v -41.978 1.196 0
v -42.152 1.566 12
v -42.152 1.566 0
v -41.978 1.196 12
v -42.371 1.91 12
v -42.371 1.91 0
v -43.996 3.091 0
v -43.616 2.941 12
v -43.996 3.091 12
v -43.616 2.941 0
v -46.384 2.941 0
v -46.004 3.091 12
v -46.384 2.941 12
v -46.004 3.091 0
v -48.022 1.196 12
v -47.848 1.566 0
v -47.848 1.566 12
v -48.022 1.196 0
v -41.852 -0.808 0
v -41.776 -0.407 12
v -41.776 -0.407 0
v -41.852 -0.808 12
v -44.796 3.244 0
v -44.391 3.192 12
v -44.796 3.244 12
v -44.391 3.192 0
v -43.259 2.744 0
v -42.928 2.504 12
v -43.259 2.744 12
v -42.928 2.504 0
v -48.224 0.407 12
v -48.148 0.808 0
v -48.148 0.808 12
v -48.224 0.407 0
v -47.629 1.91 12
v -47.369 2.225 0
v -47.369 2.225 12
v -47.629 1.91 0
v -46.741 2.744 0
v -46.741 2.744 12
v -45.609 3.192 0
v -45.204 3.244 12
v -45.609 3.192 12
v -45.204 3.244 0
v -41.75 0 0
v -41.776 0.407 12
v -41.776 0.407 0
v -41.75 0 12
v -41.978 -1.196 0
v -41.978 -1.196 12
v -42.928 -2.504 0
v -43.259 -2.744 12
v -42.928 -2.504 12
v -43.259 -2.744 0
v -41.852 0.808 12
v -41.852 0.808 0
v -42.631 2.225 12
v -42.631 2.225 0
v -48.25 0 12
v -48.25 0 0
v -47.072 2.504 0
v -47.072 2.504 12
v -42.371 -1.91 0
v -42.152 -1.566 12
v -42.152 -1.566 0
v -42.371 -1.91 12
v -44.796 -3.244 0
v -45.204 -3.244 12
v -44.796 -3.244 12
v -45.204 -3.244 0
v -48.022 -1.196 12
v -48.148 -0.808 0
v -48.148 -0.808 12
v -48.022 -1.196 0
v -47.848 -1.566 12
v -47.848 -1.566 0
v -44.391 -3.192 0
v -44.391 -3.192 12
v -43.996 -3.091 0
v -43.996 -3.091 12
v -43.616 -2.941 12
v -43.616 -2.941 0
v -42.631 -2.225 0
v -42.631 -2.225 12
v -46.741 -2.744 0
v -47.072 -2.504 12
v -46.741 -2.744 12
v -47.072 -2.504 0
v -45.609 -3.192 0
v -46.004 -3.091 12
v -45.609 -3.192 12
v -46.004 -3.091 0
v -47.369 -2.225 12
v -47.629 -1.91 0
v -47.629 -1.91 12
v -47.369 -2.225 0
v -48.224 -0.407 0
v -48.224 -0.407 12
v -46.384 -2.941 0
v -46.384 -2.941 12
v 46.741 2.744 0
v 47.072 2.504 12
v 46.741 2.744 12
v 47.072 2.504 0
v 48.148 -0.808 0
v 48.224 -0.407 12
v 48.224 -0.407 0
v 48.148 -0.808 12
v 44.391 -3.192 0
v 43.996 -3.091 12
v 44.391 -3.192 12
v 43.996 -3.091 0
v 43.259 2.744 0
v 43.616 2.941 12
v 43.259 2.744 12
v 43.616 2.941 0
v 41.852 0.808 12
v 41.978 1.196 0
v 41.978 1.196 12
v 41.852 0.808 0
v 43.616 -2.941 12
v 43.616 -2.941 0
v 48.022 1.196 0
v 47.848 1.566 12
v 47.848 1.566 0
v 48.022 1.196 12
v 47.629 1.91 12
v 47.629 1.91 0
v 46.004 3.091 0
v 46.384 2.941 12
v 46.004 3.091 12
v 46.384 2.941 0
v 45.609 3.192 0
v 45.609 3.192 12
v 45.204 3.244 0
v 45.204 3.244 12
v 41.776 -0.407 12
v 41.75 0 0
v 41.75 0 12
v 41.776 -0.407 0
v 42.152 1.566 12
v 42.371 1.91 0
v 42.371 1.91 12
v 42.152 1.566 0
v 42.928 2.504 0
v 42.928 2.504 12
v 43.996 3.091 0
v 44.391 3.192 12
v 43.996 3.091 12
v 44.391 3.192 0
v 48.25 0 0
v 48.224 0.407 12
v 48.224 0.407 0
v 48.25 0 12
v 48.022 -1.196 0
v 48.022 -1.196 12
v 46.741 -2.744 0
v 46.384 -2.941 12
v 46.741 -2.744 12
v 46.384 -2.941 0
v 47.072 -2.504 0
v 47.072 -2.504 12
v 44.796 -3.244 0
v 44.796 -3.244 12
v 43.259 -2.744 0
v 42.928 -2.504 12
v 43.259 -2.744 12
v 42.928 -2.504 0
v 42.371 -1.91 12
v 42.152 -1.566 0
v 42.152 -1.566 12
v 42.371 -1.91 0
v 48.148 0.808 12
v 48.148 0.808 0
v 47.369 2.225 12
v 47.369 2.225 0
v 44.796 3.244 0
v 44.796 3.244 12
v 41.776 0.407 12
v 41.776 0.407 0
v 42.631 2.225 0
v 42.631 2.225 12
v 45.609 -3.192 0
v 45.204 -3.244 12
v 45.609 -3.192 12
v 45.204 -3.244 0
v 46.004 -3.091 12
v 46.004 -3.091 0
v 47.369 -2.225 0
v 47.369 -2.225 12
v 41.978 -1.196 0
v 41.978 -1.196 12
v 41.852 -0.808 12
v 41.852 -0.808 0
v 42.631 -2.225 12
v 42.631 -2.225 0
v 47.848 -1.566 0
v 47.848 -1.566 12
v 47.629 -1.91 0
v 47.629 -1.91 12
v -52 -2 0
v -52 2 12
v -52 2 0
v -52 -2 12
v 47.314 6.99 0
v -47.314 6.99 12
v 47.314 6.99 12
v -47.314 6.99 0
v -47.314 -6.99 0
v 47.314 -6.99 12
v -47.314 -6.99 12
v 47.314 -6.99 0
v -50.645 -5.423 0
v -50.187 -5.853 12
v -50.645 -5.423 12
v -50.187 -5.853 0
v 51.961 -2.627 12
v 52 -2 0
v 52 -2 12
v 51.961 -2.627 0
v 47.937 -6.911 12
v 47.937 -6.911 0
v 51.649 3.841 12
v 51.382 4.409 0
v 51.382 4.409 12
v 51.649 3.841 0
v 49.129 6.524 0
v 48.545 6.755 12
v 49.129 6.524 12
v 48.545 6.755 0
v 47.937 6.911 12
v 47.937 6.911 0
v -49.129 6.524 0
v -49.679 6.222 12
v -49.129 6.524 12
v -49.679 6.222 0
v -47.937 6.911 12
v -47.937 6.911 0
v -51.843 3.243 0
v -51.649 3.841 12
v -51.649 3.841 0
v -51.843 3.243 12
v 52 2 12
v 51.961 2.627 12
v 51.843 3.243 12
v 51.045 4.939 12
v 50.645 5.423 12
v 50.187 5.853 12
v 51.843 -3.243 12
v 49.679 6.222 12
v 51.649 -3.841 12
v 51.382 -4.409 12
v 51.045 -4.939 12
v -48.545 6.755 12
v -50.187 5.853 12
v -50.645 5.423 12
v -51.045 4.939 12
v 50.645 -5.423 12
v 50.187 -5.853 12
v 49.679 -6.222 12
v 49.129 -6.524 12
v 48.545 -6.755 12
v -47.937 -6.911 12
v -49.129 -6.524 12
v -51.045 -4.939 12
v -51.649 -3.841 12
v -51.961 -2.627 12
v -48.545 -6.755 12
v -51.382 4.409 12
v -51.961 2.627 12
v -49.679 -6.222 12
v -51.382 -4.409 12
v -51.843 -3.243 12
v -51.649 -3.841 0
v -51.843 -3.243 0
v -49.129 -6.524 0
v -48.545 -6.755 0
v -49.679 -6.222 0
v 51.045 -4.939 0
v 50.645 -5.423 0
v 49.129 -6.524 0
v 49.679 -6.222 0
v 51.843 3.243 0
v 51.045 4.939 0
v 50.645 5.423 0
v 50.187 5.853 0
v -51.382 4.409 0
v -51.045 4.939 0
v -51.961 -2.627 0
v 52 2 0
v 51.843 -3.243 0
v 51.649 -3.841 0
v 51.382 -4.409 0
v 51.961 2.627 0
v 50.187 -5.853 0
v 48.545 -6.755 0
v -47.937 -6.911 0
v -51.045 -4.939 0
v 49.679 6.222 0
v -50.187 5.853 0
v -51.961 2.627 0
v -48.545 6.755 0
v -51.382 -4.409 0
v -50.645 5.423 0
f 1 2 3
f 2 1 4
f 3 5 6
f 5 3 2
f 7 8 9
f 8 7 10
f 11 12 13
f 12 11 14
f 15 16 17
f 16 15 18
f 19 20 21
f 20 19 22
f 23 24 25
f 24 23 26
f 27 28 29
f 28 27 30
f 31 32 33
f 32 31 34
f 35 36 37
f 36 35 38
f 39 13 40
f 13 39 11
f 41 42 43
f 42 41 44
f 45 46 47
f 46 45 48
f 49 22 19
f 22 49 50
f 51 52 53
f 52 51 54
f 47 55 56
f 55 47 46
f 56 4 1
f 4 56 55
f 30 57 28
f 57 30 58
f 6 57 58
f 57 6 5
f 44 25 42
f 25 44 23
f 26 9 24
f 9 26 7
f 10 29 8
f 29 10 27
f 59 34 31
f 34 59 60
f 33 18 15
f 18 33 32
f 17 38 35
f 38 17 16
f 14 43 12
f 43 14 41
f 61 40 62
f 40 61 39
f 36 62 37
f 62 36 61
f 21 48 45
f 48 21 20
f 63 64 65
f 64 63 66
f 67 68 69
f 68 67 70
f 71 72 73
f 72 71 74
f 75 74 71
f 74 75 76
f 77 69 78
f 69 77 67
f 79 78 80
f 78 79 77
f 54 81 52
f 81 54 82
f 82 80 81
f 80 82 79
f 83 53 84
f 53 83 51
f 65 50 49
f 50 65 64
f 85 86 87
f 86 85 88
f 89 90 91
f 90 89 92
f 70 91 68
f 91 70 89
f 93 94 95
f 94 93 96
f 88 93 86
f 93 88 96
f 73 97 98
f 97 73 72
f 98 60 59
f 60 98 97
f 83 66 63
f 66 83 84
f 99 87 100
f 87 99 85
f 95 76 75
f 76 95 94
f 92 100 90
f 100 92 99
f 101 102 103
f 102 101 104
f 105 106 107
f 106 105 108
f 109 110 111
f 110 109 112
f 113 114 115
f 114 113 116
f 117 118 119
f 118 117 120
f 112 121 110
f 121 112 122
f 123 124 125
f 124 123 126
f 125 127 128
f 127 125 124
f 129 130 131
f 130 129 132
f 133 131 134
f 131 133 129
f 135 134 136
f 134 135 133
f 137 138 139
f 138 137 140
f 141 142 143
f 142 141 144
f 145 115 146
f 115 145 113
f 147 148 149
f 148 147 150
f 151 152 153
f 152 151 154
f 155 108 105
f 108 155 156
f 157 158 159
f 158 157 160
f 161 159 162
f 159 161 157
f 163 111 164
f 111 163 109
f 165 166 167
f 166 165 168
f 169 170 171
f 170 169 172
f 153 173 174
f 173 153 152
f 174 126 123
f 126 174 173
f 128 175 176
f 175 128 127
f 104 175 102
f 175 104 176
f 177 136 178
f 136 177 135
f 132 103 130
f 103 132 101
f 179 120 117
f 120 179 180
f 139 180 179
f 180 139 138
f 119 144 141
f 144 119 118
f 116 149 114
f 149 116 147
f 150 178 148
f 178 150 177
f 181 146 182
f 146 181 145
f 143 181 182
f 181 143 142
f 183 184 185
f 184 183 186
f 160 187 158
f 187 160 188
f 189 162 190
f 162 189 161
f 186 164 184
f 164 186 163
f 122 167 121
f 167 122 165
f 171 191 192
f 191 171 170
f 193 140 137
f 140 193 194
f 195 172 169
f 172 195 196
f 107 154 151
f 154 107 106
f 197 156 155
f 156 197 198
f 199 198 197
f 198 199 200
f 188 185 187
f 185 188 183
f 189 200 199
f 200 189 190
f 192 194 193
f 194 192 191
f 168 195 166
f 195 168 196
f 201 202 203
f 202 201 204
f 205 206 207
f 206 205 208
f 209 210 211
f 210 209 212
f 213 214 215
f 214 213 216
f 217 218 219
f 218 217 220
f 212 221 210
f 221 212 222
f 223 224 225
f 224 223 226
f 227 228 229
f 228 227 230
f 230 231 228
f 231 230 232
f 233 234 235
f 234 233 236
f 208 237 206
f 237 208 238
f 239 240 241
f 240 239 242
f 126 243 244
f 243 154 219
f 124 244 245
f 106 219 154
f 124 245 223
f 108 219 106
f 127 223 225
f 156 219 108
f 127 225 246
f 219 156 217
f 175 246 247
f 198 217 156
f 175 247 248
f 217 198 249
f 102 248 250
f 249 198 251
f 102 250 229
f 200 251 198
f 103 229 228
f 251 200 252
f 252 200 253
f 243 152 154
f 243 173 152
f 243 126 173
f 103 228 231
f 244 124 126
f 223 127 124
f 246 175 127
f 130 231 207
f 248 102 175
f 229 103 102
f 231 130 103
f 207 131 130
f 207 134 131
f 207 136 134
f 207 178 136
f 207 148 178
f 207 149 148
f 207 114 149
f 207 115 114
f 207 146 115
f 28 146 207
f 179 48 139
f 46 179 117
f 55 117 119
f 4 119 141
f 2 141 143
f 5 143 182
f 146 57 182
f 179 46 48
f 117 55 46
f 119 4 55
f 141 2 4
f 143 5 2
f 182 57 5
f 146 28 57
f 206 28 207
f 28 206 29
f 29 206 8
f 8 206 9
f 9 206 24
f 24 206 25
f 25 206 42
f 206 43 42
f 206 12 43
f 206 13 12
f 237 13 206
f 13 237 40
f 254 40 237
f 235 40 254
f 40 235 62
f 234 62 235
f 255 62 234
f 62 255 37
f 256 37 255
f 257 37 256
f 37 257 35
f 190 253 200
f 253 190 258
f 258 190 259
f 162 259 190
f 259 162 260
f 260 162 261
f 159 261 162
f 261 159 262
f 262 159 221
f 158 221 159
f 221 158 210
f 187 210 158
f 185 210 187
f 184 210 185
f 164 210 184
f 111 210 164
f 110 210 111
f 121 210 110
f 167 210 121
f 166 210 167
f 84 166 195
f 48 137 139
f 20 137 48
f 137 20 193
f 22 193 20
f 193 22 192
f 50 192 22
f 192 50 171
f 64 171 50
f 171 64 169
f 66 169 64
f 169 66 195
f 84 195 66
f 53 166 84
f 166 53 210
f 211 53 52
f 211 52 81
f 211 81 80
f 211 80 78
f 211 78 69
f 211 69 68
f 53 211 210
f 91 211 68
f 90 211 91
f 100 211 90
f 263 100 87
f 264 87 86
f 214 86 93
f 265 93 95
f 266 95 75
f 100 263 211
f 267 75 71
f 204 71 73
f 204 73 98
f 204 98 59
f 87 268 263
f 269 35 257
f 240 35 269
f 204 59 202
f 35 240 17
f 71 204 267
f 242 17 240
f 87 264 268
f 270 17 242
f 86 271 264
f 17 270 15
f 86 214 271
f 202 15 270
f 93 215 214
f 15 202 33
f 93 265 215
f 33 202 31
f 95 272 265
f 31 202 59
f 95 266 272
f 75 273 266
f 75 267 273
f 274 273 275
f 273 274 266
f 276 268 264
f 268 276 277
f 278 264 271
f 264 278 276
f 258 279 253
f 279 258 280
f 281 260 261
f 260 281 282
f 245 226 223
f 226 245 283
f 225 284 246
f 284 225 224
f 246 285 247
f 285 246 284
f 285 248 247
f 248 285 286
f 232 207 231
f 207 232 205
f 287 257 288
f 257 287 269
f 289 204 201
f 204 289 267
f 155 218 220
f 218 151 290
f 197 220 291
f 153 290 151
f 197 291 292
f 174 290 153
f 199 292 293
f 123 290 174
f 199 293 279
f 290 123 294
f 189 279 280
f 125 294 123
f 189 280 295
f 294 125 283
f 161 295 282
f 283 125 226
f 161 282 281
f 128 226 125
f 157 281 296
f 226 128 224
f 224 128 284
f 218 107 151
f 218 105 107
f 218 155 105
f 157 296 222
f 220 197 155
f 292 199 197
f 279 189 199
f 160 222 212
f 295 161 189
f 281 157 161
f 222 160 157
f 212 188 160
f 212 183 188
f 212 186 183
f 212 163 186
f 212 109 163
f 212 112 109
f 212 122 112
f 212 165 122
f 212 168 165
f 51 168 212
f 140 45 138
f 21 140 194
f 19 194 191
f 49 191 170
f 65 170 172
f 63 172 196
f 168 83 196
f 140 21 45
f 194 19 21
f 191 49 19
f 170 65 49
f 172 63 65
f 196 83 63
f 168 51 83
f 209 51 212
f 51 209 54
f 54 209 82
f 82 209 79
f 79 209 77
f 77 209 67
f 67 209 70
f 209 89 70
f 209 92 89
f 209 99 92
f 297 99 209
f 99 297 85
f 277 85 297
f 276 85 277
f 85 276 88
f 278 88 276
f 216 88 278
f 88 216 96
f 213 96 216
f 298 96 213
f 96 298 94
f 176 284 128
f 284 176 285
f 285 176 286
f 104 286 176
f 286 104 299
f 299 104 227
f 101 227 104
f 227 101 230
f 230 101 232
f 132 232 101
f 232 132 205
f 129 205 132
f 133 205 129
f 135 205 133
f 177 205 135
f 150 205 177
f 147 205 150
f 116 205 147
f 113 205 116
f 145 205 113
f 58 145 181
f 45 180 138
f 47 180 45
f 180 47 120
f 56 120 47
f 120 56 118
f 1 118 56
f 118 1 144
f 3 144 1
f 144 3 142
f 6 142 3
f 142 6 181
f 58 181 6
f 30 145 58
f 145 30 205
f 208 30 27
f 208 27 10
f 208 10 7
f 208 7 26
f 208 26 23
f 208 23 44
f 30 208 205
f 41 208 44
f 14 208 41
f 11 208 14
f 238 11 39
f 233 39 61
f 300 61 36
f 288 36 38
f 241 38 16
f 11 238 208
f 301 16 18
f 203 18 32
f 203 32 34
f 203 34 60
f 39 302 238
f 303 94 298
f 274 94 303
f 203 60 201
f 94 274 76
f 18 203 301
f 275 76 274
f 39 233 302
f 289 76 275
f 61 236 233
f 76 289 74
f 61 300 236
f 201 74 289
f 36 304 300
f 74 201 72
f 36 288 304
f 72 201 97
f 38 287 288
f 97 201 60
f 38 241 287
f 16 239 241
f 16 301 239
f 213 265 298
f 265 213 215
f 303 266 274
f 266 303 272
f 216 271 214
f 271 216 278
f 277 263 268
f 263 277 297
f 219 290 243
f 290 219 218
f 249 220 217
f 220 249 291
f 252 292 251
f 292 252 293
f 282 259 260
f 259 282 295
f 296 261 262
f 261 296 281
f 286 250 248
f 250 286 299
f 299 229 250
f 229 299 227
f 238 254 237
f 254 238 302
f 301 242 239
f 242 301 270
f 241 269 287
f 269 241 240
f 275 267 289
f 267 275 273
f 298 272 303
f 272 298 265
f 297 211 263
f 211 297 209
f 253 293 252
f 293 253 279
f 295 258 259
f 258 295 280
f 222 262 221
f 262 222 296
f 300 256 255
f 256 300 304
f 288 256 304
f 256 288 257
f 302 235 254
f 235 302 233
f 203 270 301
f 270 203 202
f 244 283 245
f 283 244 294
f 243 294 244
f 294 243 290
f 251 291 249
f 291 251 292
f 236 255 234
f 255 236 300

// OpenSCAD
$fn = 50;


difference() {
	union() {
		hull() {
			translate(v = [-47.0000000000, 2.0000000000, 0]) {
				cylinder(h = 12, r = 5);
			}
			translate(v = [47.0000000000, 2.0000000000, 0]) {
				cylinder(h = 12, r = 5);
			}
			translate(v = [-47.0000000000, -2.0000000000, 0]) {
				cylinder(h = 12, r = 5);
			}
			translate(v = [47.0000000000, -2.0000000000, 0]) {
				cylinder(h = 12, r = 5);
			}
		}
	}
	union() {
		translate(v = [-45.0000000000, 0.0000000000, 0]) {
			cylinder(h = 12, r = 3.2500000000);
		}
		translate(v = [45.0000000000, 0.0000000000, 0]) {
			cylinder(h = 12, r = 3.2500000000);
		}
		translate(v = [-45.0000000000, 0.0000000000, 0]) {
			cylinder(h = 12, r = 1.8000000000);
		}
		translate(v = [45.0000000000, 0.0000000000, 0]) {
			cylinder(h = 12, r = 1.8000000000);
		}
		translate(v = [-45.0000000000, 0.0000000000, 0]) {
			cylinder(h = 12, r = 1.8000000000);
		}
		translate(v = [45.0000000000, 0.0000000000, 0]) {
			cylinder(h = 12, r = 1.8000000000);
		}
		translate(v = [-45.0000000000, 0.0000000000, 0]) {
			cylinder(h = 12, r = 1.8000000000);
		}
		translate(v = [45.0000000000, 0.0000000000, 0]) {
			cylinder(h = 12, r = 1.8000000000);
		}
	}
}
